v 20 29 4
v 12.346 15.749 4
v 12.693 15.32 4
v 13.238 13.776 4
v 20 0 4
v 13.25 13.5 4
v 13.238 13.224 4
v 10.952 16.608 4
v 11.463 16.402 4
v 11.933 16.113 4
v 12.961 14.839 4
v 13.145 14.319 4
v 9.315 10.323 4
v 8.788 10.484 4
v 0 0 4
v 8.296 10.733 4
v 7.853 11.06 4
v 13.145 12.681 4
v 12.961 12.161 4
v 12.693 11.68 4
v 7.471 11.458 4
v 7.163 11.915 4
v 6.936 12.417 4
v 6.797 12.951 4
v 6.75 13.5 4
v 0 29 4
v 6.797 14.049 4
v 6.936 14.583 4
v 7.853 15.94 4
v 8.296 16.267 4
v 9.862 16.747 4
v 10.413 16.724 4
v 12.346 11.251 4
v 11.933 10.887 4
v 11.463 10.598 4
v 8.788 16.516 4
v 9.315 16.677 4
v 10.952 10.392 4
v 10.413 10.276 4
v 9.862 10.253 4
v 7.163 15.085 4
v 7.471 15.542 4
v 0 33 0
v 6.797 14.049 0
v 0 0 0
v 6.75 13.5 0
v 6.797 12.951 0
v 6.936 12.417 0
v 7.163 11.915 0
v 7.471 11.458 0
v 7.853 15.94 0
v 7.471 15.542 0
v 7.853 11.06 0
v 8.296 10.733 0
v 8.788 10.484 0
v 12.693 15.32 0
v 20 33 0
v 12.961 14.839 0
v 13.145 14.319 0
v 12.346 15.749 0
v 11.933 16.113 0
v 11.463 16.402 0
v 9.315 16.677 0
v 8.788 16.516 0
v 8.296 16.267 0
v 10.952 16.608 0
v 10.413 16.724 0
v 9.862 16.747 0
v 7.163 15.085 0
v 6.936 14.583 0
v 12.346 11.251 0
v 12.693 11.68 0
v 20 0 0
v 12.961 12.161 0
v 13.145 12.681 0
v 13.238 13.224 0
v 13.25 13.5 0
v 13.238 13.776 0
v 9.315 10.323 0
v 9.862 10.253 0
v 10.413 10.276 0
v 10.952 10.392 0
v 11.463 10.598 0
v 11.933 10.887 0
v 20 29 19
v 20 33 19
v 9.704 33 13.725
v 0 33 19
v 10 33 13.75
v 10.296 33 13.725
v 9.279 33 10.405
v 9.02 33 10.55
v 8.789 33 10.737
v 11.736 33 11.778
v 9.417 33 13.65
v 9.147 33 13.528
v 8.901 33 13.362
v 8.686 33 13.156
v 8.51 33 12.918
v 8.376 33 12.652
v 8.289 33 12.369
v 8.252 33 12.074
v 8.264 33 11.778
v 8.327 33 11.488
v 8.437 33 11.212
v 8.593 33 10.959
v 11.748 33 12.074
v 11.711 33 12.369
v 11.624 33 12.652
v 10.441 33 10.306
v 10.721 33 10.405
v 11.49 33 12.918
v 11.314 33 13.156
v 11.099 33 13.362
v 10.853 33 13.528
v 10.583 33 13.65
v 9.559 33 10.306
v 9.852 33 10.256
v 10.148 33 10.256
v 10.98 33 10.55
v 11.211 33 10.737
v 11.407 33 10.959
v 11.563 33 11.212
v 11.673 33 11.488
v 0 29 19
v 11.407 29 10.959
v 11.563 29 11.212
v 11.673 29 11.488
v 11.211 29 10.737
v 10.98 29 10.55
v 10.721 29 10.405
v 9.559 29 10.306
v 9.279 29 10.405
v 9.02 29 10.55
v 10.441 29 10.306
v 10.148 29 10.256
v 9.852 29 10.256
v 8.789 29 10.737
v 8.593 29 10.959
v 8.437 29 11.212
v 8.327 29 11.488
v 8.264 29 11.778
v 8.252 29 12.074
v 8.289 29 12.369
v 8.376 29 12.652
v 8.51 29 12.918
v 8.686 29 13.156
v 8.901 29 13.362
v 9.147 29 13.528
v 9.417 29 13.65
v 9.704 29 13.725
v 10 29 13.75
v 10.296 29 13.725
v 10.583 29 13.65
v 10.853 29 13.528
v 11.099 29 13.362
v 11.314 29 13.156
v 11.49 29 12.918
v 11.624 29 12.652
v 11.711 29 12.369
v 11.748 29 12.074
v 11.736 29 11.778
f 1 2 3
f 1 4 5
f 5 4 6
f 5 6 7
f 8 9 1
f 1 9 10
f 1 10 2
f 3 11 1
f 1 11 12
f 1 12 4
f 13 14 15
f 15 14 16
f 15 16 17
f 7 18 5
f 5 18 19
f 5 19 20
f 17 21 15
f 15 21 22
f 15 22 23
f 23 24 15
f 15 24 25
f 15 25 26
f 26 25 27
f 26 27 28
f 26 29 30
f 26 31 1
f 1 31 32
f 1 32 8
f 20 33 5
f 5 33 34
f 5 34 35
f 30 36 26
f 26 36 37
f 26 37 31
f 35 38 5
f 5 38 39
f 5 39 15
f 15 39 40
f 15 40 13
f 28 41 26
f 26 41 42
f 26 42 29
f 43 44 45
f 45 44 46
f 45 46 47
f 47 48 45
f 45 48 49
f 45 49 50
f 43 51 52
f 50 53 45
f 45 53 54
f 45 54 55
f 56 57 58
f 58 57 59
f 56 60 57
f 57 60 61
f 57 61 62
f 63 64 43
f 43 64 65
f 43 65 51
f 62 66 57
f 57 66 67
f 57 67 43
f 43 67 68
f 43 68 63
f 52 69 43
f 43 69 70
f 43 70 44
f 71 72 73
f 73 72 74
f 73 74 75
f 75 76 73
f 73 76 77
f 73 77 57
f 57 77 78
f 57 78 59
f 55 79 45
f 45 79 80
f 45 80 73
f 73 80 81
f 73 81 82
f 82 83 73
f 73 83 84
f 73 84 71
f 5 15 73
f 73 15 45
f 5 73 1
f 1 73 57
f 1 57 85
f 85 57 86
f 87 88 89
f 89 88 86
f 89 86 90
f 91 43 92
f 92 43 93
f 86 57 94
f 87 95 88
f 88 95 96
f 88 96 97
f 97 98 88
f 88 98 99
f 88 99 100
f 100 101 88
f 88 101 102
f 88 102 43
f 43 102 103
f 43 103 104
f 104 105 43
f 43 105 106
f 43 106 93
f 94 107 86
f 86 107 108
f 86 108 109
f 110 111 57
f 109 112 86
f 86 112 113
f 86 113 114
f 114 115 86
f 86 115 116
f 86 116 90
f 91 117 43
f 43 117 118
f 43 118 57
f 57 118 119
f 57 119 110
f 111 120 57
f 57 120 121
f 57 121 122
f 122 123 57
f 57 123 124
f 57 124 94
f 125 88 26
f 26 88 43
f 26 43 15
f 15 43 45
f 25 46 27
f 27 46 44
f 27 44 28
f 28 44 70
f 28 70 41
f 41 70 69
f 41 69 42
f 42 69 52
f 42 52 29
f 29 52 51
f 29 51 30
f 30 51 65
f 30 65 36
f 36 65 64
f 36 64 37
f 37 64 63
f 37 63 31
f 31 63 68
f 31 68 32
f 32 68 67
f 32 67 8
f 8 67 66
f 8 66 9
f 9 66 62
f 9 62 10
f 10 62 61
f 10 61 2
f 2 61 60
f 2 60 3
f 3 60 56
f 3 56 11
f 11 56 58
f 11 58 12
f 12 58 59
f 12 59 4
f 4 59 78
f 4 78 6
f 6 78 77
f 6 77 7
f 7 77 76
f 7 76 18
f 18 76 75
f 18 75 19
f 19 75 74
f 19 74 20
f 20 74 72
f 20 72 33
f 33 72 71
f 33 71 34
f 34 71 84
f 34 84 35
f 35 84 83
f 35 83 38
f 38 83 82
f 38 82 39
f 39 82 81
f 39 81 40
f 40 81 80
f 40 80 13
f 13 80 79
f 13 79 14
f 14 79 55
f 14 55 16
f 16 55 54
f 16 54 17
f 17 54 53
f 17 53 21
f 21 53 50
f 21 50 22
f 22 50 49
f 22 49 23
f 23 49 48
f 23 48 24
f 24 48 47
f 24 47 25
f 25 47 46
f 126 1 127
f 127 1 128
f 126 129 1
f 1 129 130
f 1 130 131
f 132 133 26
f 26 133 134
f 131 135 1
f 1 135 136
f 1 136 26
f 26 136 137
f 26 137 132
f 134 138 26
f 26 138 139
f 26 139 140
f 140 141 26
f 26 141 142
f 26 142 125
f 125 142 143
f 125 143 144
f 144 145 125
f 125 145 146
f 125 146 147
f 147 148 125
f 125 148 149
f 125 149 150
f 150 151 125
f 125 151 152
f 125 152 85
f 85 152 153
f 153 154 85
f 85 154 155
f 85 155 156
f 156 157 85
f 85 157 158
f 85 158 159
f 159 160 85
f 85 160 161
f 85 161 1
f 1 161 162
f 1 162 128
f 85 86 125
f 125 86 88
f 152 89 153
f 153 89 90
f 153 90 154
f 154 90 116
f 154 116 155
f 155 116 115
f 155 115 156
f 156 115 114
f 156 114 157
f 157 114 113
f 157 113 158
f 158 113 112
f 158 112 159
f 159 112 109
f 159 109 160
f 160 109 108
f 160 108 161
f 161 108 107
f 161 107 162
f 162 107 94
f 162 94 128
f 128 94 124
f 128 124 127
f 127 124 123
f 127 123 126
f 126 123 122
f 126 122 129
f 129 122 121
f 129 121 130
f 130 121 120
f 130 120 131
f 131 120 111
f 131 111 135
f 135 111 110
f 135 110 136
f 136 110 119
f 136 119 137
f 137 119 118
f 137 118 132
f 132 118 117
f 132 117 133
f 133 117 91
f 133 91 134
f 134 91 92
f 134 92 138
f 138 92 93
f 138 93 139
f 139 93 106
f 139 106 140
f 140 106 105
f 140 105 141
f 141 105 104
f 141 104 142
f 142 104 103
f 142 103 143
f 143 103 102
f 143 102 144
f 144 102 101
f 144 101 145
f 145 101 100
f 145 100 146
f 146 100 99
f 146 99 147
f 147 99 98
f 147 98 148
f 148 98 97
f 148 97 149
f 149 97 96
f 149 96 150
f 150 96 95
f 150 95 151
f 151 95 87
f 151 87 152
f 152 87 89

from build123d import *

# Parameters (mm, degrees)
IZIM1_W                     = 20
IZIM1_H                     = 33
IZIM1_R                     = 3.25
Y_KSEKLIK_EKSTR_ZYON1_DEPTH = 4
IZIM2_W                     = 20
IZIM2_H                     = 4
Y_KSEKLIK_EKSTR_ZYON2_DEPTH = 15
IZIM3_R                     = 1.75
KES_EKSTR_ZYON1_DEPTH       = 15


with BuildPart() as part:
    # Çizim1 → Yükseklik-Ekstrüzyon1 (new body)
    with BuildSketch(Plane.XY):
        with Locations((10, 16.5)):
            Rectangle(IZIM1_W, IZIM1_H)
        with Locations((10, 13.5)):
            Circle(IZIM1_R, mode=Mode.SUBTRACT)
    extrude(amount=Y_KSEKLIK_EKSTR_ZYON1_DEPTH)

    # Çizim2 → Yükseklik-Ekstrüzyon2 (add)
    with BuildSketch(Plane.XY.offset(4)):
        with Locations((10, 31)):
            Rectangle(IZIM2_W, IZIM2_H)
    extrude(amount=Y_KSEKLIK_EKSTR_ZYON2_DEPTH)

    # Çizim3 → Kes-Ekstrüzyon1 (cut)
    with BuildSketch(Plane(origin=(0, 33, 0), x_dir=(1, 0, 0), z_dir=(0, 1, 0))):
        with Locations(Location((10, -12, 0), (0, 0, 270))):
            Circle(IZIM3_R)
    extrude(amount=-KES_EKSTR_ZYON1_DEPTH, mode=Mode.SUBTRACT)


solid = part.part
